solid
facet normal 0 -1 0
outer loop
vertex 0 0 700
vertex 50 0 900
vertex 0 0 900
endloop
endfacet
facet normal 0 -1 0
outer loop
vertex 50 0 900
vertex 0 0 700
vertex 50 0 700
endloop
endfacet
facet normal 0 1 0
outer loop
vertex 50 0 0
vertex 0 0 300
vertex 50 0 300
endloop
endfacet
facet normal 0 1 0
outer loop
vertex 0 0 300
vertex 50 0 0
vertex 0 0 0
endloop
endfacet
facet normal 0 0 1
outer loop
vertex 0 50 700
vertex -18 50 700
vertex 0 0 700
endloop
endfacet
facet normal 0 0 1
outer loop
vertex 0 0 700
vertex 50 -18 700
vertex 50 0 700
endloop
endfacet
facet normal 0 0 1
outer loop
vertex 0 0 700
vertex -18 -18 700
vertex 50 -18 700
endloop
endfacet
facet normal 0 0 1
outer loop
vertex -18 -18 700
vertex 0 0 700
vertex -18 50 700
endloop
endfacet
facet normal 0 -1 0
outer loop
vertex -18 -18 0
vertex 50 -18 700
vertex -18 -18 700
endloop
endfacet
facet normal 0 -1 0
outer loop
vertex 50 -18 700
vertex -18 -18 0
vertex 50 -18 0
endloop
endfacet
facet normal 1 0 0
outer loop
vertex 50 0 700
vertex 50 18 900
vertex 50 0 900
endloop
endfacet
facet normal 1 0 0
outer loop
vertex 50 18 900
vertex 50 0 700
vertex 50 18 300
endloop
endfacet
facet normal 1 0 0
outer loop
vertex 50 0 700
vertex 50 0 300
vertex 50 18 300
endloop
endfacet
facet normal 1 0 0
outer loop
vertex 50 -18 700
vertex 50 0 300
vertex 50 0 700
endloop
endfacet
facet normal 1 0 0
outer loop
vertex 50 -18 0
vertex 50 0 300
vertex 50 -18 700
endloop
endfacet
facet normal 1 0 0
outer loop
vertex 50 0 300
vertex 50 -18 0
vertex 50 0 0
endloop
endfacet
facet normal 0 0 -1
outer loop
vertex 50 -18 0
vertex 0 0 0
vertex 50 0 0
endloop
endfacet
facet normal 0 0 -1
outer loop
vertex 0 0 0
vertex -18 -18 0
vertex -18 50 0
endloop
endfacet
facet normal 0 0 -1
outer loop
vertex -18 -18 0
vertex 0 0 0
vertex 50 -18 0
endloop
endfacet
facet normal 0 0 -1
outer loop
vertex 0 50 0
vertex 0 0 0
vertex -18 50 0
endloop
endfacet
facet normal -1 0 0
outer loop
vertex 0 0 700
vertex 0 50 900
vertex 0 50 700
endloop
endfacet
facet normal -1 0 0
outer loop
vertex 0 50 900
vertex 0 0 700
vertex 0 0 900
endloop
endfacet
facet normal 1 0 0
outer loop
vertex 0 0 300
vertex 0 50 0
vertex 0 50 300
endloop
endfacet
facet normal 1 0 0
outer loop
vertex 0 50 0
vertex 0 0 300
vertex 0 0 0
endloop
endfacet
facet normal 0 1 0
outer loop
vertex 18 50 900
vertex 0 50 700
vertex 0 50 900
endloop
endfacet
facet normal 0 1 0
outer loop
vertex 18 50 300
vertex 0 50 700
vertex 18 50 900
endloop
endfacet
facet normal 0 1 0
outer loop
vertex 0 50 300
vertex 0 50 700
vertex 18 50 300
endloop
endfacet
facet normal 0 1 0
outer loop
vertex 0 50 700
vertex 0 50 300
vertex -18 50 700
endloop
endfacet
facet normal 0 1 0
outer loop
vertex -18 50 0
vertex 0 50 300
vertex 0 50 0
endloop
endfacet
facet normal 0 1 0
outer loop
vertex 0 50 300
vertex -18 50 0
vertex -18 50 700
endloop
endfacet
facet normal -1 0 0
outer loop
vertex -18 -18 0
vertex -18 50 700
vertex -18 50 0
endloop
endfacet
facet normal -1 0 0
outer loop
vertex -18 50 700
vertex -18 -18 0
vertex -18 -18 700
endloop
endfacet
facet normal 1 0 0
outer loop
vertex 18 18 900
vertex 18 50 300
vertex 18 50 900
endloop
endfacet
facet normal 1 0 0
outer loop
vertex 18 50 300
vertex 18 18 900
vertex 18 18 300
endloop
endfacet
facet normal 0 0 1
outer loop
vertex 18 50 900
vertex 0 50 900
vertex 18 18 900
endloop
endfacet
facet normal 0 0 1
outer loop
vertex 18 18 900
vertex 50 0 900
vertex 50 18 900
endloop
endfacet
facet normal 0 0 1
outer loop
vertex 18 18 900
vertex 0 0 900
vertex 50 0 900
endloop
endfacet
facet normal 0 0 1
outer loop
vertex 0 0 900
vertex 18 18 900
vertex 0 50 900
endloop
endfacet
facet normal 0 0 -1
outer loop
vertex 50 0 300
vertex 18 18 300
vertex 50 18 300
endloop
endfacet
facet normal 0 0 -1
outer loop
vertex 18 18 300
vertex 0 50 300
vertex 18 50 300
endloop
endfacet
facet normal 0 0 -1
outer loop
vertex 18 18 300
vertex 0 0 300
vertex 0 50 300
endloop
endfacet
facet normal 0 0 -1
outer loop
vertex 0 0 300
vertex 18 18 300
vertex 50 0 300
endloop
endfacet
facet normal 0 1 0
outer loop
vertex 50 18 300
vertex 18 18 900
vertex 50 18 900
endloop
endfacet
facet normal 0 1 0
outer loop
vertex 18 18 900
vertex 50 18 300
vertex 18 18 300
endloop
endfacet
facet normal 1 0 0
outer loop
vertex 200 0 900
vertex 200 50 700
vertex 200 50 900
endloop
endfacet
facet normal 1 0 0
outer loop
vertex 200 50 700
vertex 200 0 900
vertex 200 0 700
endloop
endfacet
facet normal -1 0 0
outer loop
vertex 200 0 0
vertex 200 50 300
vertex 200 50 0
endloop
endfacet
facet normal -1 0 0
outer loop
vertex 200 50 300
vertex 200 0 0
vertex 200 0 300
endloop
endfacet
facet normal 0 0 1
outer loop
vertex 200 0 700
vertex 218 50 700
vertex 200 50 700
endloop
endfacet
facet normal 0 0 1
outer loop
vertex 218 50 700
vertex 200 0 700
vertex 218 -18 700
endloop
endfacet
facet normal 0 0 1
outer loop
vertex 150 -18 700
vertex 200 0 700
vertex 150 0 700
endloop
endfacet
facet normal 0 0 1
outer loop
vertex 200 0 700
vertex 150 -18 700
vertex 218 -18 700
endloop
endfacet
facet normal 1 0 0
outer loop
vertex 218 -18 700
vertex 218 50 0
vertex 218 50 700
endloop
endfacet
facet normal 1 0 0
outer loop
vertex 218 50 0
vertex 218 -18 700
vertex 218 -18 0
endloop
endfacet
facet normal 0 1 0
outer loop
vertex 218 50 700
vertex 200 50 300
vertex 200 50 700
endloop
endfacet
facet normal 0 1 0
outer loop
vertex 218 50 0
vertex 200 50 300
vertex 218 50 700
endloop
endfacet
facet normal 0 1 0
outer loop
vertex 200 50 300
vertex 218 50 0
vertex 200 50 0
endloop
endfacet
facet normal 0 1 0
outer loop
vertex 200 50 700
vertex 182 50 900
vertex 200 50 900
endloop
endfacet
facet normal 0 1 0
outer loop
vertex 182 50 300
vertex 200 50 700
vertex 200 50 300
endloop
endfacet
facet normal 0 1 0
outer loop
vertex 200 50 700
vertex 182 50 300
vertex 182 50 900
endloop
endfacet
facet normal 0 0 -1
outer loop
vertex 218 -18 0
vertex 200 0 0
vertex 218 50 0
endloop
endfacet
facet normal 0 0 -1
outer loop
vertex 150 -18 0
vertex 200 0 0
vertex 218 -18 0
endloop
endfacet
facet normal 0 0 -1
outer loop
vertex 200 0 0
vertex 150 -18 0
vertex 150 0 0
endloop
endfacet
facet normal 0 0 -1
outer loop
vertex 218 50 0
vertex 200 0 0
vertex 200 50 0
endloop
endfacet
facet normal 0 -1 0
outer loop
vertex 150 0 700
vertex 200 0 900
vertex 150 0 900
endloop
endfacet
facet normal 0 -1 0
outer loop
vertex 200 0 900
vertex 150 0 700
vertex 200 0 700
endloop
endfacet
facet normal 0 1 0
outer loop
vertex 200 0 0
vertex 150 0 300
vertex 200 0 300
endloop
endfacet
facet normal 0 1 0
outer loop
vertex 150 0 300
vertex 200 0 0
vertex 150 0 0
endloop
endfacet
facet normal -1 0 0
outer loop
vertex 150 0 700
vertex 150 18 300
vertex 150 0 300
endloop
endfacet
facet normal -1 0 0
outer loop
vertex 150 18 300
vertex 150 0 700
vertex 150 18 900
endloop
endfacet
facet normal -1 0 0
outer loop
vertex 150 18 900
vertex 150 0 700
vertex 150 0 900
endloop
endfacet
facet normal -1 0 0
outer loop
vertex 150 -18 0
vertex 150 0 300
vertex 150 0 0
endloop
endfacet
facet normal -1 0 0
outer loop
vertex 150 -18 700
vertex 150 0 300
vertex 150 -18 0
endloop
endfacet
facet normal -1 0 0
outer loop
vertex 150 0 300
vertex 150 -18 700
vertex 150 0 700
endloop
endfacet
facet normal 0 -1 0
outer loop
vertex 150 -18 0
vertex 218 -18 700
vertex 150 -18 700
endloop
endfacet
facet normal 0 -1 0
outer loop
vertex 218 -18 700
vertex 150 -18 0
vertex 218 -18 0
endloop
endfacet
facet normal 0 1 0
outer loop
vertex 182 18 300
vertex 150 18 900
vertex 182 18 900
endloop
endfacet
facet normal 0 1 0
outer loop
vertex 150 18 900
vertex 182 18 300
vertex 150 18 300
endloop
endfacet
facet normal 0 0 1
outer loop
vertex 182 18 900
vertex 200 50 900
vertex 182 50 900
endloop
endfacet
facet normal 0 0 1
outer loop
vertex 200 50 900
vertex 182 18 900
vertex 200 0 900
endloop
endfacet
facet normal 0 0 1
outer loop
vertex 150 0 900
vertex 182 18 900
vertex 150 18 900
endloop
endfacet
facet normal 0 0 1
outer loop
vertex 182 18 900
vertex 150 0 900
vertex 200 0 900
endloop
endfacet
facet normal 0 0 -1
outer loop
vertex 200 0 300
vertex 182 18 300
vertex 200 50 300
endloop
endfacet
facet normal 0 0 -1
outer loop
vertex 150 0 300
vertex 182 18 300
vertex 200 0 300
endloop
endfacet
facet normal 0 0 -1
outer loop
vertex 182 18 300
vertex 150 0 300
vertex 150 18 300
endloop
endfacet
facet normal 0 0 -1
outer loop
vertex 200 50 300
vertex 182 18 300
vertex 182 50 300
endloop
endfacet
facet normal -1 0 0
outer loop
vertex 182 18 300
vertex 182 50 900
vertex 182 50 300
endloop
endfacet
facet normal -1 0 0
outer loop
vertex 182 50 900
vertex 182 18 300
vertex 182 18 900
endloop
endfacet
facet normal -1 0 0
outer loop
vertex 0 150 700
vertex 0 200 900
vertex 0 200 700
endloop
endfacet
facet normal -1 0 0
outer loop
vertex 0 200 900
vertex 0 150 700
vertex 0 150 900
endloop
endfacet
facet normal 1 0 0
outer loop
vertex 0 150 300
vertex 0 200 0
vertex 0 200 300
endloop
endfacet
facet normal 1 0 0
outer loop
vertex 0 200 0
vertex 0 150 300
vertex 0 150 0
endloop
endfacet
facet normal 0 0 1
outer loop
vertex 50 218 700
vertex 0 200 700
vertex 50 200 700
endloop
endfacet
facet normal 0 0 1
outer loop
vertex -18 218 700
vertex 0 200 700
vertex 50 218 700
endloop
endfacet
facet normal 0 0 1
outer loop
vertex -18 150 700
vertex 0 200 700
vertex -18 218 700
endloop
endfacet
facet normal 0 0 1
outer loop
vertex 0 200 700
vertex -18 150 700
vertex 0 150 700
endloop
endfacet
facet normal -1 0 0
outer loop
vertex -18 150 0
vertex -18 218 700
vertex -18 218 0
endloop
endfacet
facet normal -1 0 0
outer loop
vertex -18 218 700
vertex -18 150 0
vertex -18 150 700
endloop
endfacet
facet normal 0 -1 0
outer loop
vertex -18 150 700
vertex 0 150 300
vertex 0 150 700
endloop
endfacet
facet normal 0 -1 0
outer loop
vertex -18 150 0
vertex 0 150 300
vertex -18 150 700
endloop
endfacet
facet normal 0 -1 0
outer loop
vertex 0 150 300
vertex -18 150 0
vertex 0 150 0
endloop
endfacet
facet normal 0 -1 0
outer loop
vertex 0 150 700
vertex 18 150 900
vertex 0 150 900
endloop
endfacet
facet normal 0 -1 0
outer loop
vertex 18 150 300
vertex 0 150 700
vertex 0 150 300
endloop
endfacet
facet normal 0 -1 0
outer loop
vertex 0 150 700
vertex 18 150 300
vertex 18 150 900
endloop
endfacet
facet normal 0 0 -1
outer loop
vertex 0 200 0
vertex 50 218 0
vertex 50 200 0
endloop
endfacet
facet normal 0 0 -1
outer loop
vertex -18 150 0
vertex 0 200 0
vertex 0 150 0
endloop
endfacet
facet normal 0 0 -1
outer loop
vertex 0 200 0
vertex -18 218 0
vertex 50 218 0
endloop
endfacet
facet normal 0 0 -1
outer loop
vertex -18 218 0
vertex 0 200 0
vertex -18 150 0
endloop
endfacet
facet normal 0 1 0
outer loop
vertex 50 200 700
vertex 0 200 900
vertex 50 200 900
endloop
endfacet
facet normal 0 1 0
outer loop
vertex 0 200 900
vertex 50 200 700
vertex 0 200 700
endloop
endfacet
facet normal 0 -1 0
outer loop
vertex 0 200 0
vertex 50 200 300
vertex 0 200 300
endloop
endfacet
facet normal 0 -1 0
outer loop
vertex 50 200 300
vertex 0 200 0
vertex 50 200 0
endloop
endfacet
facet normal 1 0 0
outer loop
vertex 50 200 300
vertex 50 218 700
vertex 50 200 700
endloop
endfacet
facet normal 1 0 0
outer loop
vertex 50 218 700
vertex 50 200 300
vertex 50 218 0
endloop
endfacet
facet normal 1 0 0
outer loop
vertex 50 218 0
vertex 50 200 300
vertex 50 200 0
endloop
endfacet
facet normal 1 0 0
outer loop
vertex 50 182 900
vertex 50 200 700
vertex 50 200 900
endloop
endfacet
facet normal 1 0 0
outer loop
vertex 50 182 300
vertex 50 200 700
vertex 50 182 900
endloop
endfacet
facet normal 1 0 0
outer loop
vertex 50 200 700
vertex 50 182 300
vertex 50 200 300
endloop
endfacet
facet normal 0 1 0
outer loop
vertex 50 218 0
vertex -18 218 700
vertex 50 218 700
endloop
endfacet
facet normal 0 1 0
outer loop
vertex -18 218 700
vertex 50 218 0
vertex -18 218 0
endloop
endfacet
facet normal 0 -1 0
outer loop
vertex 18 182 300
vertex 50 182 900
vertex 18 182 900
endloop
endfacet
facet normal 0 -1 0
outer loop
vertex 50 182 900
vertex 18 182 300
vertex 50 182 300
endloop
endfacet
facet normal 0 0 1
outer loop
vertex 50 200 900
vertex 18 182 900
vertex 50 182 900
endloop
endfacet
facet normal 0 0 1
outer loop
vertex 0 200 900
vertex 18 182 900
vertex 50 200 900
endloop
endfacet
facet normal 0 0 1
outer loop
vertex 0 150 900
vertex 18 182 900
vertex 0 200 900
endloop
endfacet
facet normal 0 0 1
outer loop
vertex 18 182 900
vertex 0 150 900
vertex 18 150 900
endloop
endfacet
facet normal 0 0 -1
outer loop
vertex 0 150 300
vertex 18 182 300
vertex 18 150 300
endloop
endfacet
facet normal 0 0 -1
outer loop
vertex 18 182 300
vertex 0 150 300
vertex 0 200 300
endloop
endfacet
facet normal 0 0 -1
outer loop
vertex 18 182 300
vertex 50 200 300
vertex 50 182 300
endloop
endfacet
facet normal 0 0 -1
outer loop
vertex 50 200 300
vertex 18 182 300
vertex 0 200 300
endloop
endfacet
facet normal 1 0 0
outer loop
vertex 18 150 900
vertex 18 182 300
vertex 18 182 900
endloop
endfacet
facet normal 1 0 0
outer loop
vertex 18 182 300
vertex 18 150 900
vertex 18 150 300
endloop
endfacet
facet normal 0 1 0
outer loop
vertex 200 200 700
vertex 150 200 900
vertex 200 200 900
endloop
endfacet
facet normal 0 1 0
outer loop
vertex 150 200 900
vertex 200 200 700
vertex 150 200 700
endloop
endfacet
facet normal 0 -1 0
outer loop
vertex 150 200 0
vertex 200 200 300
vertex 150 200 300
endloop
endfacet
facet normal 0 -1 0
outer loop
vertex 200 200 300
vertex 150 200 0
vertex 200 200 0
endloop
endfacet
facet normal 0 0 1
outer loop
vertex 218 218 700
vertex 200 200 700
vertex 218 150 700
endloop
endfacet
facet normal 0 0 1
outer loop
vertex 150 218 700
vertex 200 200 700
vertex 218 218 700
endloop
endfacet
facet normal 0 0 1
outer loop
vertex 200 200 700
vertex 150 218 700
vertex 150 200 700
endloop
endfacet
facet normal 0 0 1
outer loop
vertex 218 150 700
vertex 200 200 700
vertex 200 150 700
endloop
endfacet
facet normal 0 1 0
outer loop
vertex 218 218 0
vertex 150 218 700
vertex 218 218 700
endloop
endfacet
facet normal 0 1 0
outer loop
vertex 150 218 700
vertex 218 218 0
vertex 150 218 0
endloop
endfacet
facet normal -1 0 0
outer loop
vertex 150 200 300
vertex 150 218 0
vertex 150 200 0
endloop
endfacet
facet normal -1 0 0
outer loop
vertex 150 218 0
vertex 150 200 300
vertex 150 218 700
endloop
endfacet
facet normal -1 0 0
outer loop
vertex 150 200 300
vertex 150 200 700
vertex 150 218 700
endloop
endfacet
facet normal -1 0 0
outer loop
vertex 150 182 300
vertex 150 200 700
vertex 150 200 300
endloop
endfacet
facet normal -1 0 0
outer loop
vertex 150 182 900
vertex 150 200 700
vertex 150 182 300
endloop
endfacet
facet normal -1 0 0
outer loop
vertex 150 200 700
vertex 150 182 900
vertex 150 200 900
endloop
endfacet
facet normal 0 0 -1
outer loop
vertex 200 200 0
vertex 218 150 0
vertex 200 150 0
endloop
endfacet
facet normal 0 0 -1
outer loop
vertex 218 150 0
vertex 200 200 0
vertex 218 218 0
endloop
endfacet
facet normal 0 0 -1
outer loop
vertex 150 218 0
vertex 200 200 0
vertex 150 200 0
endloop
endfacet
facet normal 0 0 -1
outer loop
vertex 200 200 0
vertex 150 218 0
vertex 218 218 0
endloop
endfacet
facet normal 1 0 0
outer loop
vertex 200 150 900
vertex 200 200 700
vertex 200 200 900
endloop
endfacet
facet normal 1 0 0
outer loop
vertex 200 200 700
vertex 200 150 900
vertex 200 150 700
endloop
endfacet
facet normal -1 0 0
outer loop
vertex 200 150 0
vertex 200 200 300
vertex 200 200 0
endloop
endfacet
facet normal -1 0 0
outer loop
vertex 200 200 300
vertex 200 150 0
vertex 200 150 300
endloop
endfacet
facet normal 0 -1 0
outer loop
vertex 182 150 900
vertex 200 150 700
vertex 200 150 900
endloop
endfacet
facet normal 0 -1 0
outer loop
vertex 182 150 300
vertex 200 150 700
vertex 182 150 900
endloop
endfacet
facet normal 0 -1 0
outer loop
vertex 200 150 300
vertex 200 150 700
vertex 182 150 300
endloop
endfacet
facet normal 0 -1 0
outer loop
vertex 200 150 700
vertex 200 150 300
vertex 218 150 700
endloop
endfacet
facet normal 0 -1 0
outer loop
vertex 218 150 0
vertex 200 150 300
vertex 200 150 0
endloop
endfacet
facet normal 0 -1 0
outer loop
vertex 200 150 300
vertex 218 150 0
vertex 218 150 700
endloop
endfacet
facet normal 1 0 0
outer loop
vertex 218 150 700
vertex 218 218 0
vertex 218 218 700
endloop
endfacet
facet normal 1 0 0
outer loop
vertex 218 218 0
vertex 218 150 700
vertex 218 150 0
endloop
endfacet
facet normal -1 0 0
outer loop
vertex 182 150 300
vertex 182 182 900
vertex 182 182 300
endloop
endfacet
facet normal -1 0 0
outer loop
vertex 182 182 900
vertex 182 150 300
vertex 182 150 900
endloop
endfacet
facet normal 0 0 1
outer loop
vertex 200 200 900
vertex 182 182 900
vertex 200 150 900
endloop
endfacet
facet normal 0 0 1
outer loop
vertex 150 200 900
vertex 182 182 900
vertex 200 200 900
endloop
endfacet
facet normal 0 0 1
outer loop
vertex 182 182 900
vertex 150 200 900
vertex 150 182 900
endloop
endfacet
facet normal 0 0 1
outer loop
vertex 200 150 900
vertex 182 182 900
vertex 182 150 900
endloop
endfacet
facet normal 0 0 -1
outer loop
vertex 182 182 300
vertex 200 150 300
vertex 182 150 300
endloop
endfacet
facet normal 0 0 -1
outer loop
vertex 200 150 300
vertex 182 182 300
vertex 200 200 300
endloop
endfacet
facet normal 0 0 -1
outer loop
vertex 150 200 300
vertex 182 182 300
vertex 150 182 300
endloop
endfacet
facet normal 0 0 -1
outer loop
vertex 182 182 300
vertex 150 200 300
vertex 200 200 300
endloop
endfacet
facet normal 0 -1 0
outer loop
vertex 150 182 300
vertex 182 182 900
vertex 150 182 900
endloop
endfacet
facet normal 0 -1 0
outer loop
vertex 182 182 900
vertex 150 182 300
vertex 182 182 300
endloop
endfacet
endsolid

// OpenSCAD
bottomLegHeight= 700;
topLegHeight= 600;

topLegAdjust=300;
bottomLegAdjust=0;

boardThickness=18;

bottomLegWidthInside=50;
bottomLegWidthOutside= bottomLegWidthInside + boardThickness;

topLegWidthInside= bottomLegWidthInside - boardThickness;
topLegWidthOutside= bottomLegWidthInside;


module legPos(x,y,z,rt)
{
    translate([x,y,z])
    rotate([0,0,rt])    
    leg();
}
module leg()
{
    translate([0,0,bottomLegAdjust])
    bottomLeg();
    
    translate([0,0,topLegAdjust])
    topLeg();
}

module bottomLeg()
{
    cube([boardThickness,bottomLegWidthInside,bottomLegHeight]);

    translate([boardThickness,-boardThickness,0])
    rotate([0,0,90])
    cube([boardThickness,bottomLegWidthOutside,bottomLegHeight]);
}

module topLeg()
{
    translate([-boardThickness, 0, 0])
    rotate([0,0,90])
    cube([boardThickness,topLegWidthInside,topLegHeight]);
    
    translate([-boardThickness, 0, 0])
    cube([boardThickness,topLegWidthOutside,topLegHeight]);
}



legPos(x=0, y=0, z=0, rt=270);
legPos(x=200, y=0, z=0, rt=0);
legPos(x=0, y=200, z=0, rt=180);
legPos(x=200, y=200, z=0, rt=90);
